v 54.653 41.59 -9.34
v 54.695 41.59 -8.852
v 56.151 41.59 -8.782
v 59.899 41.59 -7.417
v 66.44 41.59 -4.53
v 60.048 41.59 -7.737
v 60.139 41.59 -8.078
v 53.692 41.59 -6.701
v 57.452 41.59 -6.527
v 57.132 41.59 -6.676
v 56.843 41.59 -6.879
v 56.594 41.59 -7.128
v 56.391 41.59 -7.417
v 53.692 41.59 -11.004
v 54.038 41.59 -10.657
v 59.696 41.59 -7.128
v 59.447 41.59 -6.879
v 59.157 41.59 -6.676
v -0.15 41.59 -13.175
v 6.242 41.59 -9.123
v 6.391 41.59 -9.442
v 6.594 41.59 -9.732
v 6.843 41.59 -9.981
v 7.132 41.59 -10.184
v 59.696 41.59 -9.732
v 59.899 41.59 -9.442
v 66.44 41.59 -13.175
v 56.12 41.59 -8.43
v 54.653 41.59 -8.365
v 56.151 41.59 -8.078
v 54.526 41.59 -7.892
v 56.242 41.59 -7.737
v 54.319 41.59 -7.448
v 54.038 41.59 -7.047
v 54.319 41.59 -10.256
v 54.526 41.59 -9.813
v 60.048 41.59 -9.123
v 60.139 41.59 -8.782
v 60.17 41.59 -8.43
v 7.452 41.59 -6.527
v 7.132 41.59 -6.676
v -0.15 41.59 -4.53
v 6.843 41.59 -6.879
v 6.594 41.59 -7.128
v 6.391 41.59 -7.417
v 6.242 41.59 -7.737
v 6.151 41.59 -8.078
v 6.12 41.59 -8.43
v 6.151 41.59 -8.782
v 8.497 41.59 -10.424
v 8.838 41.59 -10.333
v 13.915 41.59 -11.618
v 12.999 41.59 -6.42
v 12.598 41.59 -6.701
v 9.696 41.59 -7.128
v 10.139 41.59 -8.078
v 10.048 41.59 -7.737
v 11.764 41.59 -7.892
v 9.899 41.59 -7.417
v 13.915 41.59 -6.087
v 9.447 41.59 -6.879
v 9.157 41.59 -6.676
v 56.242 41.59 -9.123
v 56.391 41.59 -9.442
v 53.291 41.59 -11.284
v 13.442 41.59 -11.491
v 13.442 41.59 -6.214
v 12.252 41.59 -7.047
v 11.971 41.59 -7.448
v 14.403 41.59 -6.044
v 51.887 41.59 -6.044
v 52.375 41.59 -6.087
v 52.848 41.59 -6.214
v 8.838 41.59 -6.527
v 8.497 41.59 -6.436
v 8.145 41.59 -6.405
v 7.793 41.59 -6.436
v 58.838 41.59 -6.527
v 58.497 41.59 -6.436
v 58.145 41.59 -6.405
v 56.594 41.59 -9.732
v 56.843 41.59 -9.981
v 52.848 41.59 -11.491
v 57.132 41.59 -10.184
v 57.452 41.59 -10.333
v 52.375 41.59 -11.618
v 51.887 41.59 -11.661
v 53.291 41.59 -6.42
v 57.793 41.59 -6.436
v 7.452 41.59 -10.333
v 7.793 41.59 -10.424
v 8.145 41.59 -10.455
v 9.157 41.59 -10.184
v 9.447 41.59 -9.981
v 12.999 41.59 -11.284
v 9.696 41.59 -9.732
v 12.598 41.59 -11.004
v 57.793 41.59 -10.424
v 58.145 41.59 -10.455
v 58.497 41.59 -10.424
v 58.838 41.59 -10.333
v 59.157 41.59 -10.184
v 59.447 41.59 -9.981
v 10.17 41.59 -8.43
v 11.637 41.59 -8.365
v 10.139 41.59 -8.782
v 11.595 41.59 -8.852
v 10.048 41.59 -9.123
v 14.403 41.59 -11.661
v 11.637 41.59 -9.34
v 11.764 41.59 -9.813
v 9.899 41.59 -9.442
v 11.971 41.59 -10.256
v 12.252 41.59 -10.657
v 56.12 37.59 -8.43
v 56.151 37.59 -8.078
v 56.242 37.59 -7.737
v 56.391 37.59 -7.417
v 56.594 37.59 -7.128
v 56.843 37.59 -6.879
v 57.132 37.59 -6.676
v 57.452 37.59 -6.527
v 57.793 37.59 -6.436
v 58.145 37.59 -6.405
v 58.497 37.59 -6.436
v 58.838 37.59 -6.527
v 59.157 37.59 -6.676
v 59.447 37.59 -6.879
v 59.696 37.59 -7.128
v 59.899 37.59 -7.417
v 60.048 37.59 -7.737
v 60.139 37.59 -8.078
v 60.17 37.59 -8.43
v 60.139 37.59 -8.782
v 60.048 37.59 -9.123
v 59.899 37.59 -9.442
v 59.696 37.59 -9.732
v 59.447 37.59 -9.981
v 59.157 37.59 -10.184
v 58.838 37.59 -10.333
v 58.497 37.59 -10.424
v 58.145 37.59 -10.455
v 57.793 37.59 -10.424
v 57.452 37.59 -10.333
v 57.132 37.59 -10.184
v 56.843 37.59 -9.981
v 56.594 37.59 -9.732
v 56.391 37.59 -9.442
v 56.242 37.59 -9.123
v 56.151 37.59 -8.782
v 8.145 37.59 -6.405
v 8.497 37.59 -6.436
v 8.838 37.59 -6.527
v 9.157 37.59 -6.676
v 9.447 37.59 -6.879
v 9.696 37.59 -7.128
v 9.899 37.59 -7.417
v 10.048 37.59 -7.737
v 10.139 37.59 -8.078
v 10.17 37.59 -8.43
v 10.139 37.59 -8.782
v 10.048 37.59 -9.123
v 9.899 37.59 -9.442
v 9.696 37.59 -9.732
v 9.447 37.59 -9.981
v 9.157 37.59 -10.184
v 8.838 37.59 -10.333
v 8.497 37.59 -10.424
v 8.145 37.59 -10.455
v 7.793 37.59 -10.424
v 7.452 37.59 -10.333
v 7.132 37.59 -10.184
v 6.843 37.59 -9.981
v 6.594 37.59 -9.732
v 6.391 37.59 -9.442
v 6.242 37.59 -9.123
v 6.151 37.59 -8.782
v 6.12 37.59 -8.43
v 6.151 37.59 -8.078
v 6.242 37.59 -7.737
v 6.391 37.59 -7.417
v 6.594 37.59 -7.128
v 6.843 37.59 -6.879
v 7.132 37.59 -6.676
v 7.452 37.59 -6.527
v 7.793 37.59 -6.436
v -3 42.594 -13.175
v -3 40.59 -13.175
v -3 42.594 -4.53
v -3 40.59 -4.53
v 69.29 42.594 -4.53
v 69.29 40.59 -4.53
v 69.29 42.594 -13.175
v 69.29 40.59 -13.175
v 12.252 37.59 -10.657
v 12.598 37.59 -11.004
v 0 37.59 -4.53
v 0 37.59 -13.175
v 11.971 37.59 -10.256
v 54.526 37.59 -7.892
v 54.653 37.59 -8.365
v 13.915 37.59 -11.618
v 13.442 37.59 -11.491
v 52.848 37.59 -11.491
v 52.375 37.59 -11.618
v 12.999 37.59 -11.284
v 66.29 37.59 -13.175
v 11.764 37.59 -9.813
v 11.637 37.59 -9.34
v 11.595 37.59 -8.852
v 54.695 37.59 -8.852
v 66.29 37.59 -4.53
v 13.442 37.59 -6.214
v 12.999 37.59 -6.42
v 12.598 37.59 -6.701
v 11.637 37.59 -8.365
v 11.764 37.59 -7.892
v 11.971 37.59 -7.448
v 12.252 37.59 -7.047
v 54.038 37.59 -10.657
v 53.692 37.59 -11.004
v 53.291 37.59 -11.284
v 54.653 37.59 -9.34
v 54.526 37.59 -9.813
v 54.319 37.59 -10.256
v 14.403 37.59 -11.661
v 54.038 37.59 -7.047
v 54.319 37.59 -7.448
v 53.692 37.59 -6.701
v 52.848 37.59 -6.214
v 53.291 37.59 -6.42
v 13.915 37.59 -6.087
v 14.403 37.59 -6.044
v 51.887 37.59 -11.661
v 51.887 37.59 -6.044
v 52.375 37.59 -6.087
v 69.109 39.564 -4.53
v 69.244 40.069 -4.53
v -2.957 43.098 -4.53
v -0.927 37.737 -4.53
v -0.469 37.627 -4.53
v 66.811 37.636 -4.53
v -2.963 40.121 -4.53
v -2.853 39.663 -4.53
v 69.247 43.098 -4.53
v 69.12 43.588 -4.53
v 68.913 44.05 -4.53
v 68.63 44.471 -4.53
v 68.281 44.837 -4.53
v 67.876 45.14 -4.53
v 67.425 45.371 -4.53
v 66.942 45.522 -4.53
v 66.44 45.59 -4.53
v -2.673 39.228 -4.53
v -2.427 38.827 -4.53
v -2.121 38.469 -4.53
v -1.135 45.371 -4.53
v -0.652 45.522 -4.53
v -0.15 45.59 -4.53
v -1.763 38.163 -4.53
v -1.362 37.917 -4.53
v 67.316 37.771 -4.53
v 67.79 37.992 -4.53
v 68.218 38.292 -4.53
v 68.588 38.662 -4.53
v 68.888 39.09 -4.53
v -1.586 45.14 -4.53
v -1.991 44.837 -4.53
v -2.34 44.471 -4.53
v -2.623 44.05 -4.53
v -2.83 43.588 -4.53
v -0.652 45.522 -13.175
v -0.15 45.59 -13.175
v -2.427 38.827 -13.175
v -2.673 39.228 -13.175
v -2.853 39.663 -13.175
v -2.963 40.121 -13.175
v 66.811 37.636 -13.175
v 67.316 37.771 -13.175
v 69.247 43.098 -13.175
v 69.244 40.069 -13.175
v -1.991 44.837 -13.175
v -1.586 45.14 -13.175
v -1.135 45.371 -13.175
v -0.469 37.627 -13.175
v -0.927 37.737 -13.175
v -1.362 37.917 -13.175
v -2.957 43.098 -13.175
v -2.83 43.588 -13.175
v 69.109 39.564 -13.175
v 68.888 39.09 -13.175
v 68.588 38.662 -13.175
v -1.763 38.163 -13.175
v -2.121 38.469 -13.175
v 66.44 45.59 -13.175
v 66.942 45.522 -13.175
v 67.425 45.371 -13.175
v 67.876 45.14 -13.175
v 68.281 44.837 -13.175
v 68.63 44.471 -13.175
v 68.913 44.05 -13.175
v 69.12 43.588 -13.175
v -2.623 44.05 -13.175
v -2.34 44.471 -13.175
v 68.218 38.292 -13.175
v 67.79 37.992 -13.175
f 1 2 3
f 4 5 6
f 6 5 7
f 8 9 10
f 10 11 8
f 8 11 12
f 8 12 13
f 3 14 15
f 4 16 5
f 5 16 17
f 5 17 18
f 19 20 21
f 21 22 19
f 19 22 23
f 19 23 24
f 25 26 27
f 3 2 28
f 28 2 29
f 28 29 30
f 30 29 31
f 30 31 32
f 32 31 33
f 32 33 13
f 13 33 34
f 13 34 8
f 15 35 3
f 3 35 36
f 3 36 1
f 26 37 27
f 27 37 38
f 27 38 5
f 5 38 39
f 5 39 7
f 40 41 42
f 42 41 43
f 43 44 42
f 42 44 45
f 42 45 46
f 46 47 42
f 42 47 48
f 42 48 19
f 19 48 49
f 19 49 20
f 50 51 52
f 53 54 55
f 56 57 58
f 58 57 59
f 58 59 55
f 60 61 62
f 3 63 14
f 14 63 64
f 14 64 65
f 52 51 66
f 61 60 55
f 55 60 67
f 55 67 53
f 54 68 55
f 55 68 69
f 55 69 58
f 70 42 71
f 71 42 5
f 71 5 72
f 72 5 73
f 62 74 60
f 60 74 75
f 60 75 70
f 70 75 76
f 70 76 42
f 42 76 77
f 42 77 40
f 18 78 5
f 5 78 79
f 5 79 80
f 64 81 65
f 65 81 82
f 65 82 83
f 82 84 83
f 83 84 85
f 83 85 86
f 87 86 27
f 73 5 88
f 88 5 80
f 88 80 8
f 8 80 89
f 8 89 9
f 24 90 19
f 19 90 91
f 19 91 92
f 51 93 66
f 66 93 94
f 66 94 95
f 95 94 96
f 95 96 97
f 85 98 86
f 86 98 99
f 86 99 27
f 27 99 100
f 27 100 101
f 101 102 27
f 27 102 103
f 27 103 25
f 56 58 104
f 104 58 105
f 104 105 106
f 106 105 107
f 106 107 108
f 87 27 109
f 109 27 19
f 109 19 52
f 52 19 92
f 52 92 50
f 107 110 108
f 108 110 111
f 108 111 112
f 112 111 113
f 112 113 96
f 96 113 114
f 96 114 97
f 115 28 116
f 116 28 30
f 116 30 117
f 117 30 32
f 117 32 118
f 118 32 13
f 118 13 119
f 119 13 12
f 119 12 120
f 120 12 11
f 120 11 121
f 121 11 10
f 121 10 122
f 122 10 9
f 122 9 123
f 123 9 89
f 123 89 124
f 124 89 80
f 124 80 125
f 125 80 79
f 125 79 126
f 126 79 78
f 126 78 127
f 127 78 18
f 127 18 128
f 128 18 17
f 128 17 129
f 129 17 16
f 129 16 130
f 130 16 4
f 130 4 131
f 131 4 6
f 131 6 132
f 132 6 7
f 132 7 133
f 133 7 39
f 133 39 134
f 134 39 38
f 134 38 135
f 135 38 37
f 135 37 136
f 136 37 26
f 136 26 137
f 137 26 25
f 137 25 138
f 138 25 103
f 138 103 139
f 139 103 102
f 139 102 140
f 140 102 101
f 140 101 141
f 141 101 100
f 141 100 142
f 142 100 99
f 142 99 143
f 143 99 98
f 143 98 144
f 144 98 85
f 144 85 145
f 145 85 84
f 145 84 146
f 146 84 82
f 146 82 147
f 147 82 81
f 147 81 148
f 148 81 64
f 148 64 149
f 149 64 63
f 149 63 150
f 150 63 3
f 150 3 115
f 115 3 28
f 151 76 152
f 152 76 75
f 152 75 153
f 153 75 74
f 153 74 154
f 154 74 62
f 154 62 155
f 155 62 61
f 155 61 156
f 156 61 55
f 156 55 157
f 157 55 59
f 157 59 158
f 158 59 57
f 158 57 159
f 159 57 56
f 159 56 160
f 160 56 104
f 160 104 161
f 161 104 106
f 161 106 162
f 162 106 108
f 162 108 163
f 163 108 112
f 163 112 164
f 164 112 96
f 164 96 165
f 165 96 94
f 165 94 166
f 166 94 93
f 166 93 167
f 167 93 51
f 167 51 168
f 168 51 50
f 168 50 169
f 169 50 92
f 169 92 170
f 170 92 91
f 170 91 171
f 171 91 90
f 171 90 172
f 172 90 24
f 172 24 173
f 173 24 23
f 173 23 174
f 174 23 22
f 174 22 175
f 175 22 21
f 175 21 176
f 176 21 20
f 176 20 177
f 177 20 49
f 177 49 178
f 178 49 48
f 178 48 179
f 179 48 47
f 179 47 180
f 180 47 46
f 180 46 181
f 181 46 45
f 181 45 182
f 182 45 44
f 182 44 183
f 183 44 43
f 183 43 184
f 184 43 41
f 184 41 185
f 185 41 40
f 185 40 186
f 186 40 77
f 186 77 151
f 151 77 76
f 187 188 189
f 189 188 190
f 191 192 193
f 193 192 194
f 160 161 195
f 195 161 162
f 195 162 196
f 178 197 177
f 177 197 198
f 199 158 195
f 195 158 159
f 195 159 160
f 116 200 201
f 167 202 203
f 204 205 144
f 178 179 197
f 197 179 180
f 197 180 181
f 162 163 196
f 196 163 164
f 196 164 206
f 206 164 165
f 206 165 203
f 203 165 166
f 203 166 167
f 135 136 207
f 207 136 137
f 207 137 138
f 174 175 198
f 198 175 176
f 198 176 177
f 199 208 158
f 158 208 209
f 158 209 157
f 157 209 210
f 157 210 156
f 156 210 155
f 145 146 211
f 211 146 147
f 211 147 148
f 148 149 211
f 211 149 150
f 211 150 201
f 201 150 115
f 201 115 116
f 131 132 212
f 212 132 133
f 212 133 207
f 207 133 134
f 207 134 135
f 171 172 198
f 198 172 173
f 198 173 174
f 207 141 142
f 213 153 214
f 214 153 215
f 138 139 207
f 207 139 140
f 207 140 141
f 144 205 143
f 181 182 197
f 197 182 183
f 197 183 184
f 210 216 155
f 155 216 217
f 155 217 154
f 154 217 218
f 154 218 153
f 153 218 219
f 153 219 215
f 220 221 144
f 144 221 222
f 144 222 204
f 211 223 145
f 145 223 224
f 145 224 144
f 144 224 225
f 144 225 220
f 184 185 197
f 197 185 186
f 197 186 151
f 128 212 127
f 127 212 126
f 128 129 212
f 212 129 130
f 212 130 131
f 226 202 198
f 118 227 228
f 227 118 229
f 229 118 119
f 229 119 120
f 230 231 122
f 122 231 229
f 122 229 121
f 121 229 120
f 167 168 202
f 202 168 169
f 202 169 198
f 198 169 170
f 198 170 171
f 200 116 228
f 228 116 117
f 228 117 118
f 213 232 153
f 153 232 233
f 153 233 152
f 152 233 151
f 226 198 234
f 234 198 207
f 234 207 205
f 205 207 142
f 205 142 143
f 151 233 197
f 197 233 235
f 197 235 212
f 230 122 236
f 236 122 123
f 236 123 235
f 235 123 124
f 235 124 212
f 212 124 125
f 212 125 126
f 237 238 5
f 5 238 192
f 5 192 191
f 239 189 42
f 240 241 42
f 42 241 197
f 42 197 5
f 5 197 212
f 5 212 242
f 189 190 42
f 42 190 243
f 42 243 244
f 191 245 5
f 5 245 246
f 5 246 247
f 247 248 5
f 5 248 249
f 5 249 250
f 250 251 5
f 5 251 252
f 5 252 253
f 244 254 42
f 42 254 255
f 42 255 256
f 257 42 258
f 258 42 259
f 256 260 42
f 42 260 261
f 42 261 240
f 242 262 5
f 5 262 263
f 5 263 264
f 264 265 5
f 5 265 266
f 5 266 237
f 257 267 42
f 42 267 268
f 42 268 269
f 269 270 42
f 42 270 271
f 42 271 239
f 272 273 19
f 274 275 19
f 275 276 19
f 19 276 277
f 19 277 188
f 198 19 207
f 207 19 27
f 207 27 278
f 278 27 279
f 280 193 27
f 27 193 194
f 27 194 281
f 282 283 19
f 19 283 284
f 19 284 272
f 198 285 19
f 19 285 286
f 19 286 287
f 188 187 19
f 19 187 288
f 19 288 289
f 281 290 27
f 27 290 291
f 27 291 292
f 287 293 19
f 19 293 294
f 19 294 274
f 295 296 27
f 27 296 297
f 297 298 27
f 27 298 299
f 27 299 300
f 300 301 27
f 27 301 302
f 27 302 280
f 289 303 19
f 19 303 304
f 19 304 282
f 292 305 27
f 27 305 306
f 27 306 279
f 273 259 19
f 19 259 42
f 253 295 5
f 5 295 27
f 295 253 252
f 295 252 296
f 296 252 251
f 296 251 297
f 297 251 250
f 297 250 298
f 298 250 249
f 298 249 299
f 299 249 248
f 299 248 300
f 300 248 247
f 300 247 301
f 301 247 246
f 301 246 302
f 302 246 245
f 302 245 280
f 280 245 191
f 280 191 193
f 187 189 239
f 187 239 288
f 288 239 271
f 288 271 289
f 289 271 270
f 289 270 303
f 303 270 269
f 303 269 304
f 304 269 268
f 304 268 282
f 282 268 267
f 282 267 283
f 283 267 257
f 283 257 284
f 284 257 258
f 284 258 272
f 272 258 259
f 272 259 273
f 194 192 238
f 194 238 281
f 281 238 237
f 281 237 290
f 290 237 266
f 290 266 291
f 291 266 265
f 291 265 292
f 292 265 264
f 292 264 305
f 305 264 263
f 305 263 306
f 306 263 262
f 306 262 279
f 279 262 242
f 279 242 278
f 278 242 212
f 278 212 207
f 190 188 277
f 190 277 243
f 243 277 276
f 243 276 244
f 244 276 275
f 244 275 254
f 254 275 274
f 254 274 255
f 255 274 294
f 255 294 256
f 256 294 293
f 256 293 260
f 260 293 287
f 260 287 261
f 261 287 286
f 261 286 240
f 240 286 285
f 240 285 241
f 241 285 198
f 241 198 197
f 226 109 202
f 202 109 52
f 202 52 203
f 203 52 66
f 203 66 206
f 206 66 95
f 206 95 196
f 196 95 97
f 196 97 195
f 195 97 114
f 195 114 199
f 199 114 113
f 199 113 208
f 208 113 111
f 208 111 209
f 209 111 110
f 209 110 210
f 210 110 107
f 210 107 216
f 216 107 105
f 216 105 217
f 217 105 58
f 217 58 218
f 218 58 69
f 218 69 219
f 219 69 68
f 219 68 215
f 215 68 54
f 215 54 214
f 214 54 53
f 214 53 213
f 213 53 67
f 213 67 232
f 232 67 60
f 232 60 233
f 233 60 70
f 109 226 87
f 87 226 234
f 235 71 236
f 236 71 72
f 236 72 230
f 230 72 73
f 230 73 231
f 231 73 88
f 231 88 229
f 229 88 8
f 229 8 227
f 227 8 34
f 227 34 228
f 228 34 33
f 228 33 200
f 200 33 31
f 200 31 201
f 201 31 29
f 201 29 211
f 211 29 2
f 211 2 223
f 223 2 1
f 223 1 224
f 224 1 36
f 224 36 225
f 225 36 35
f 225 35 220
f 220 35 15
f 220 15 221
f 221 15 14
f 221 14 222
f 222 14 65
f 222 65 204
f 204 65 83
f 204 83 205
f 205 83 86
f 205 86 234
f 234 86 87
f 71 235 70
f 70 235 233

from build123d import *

# Parameters (mm, degrees)
SKETCH1_W                 = 66.29
SKETCH1_H                 = 100
BOSS_EXTRUDE1_DEPTH       = 41.59
SHELL2_T                  = -3
SHELL2_THICKNESS_2_FACE_W = 60.29
SHELL2_THICKNESS_2_FACE_H = 38.59
SHELL2_THICKNESS_2_DEPTH  = 1
SHELL2_THICKNESS_3_FACE_W = 60.29
SHELL2_THICKNESS_3_FACE_H = 38.59
SHELL2_THICKNESS_3_DEPTH  = 1
CUT_EXTRUDE1_DEPTH        = 125.59
FILLET1_R                 = 2
CUT_EXTRUDE2_REACH        = 128.981
SKETCH5_R                 = 5
SKETCH5_R_2               = 2.32
CUT_EXTRUDE3_START        = -3
SKETCH6_R                 = 23.17
CUT_EXTRUDE3_DEPTH        = 60.29
SKETCH7_R                 = 3.7
CUT_EXTRUDE4_DEPTH        = 1
BOSS_EXTRUDE2_DEPTH       = 10
SKETCH9_R                 = 1.5
CUT_EXTRUDE5_DEPTH        = 13
CUT_EXTRUDE6_START        = -6
SKETCH10_R                = 1.5
CUT_EXTRUDE6_DEPTH        = 6
CHAMFER1_SIZE             = 1
BOSS_EXTRUDE3_DEPTH       = 7
CHAMFER2_SIZE             = 1
SKETCH12_R                = 2.025
BOSS_EXTRUDE4_DEPTH       = 4
CHAMFER1_OF_MIRROR1_SIZE  = 1
CHAMFER2_OF_MIRROR1_SIZE  = 1
CUT_EXTRUDE7_REACH        = 130.572
SKETCH16_W                = 3
SKETCH16_H                = 0.2
CUT_EXTRUDE8_DEPTH        = 4.2
SKETCH17_W                = 9.044697424
SKETCH17_H                = 0.2
CUT_EXTRUDE9_DEPTH        = 66.29
SKETCH18_W                = 2.85
SKETCH18_H                = 8.644697424
BOSS_EXTRUDE5_DEPTH       = 4
FILLET2_R                 = 3
CUT_EXTRUDE10_DEPTH       = 10


with BuildPart() as part:
    # Sketch1 → Boss-Extrude1 (new body)
    with BuildSketch(Plane(origin=(0, 0, 0), x_dir=(1, 0, 0), z_dir=(0, 1, 0))):
        with Locations((33.145, 50)):
            Rectangle(SKETCH1_W, SKETCH1_H)
    extrude(amount=BOSS_EXTRUDE1_DEPTH)

    # Shell2
    shell2_openings = [part.faces().sort_by_distance(p)[0] for p in [
        (33.145, 41.59, -50),
    ]]
    offset(amount=SHELL2_T, openings=shell2_openings, kind=Kind.INTERSECTION)

    # Shell2 thickness 2 face (on inner face of the shell) → Shell2 thickness 2 (cut)
    with BuildSketch(Plane(origin=(33.145, 22.295, -3), x_dir=(1, 0, 0), z_dir=(0, 0, 1))):
        Rectangle(SHELL2_THICKNESS_2_FACE_W, SHELL2_THICKNESS_2_FACE_H)
    extrude(amount=SHELL2_THICKNESS_2_DEPTH, mode=Mode.SUBTRACT)

    # Shell2 thickness 3 face (on inner face of the shell) → Shell2 thickness 3 (cut)
    with BuildSketch(Plane(origin=(33.145, 22.295, -97), x_dir=(-1, 0, 0), z_dir=(0, 0, -1))):
        Rectangle(SHELL2_THICKNESS_3_FACE_W, SHELL2_THICKNESS_3_FACE_H)
    extrude(amount=SHELL2_THICKNESS_3_DEPTH, mode=Mode.SUBTRACT)

    # Sketch3 → Cut-Extrude1 (cut)
    with BuildSketch(Plane.XY):
        Polygon((54.395, 15), (11.895, 15), (11.895, 31.32), (8.815, 31.32), (8.815, 33.97), (7.755, 35.32), (7.145, 35.32), (7.145, 41.59), (59.145, 41.59), (57.145, 35.32), (56.535, 35.32), (55.475, 33.97), (55.475, 31.32), (52.395, 31.32), align=None)
    extrude(amount=-CUT_EXTRUDE1_DEPTH, mode=Mode.SUBTRACT)

    # Fillet1
    fillet1_edges = [part.edges().sort_by_distance(p)[0] for p in [
        (33.145, 0, -100),
        (66.29, 0, -50),
        (33.145, 0, 0),
        (0, 0, -50),
        (0, 20.795, -100),
        (66.29, 20.795, -100),
        (66.29, 20.795, 0),
        (0, 20.795, 0),
    ]]
    fillet(fillet1_edges, radius=FILLET1_R)

    # Cut-Extrude2: up to this face of the body (flat: up to its plane)
    cut_extrude2_end = Plane(part.part.faces().sort_by_distance((66.29, 21.795, -50))[0])
    # Sketch5 → Cut-Extrude2 (cut, up to the picked face)
    with BuildSketch(Plane.ZY, mode=Mode.PRIVATE) as cut_extrude2_sk1:
        with Locations((-72.87, 8)):
            Circle(SKETCH5_R)
    cut_extrude2_tool1 = split(extrude(cut_extrude2_sk1.sketch, amount=-CUT_EXTRUDE2_REACH, mode=Mode.PRIVATE), bisect_by=cut_extrude2_end, keep=Keep.BOTH, mode=Mode.PRIVATE)
    # Sketch5 → Cut-Extrude2 (cut, up to the picked face)
    with BuildSketch(Plane.ZY, mode=Mode.PRIVATE) as cut_extrude2_sk2:
        with Locations((-90.37, 15.93)):
            Circle(SKETCH5_R_2)
    cut_extrude2_tool2 = split(extrude(cut_extrude2_sk2.sketch, amount=-CUT_EXTRUDE2_REACH, mode=Mode.PRIVATE), bisect_by=cut_extrude2_end, keep=Keep.BOTH, mode=Mode.PRIVATE)
    # Sketch5 → Cut-Extrude2 (cut, up to the picked face)
    with BuildSketch(Plane.ZY, mode=Mode.PRIVATE) as cut_extrude2_sk3:
        with Locations((-55.37, 15.93)):
            Circle(SKETCH5_R_2)
    cut_extrude2_tool3 = split(extrude(cut_extrude2_sk3.sketch, amount=-CUT_EXTRUDE2_REACH, mode=Mode.PRIVATE), bisect_by=cut_extrude2_end, keep=Keep.BOTH, mode=Mode.PRIVATE)
    add(cut_extrude2_tool1.solids().sort_by(Axis((0, 8, -72.87), (1, 0, 0)))[0], mode=Mode.SUBTRACT)
    add(cut_extrude2_tool2.solids().sort_by(Axis((0, 15.93, -90.37), (1, 0, 0)))[0], mode=Mode.SUBTRACT)
    add(cut_extrude2_tool3.solids().sort_by(Axis((0, 15.93, -55.37), (1, 0, 0)))[0], mode=Mode.SUBTRACT)

    # Sketch6 → Cut-Extrude3 (cut)
    with BuildSketch(Plane.ZY.offset(CUT_EXTRUDE3_START)):
        with Locations((-72.87, 25.24)):
            Circle(SKETCH6_R)
    extrude(amount=-CUT_EXTRUDE3_DEPTH, mode=Mode.SUBTRACT)

    # Sketch7 → Cut-Extrude4 (cut)
    with BuildSketch(Plane.ZY):
        with Locations((-55.37, 15.93)):
            Circle(SKETCH7_R)
        with Locations((-90.37, 15.93)):
            Circle(SKETCH7_R)
    cut_extrude4 = extrude(amount=-CUT_EXTRUDE4_DEPTH, mode=Mode.SUBTRACT)

    # Sketch8 → Boss-Extrude2 (add)
    with BuildSketch(Plane(origin=(0, 3, 0), x_dir=(1, 0, 0), z_dir=(0, 1, 0))):
        Polygon((3, 18.5), (3, 2), (13, 2), (13, 18.5), (15.79, 18.5), (15.79, 21.25), (8, 21.25), (8, 18.5), align=None)
    boss_extrude2 = extrude(amount=BOSS_EXTRUDE2_DEPTH)

    # Sketch9 → Cut-Extrude5 (cut)
    with BuildSketch(Plane.ZY):
        with Locations((-8.24, 8)):
            Circle(SKETCH9_R)
    cut_extrude5 = extrude(amount=-CUT_EXTRUDE5_DEPTH, mode=Mode.SUBTRACT)

    # Sketch10 → Cut-Extrude6 (cut)
    # profile 1 of 2: a face of its own
    with BuildSketch(Plane(origin=(13, 0, 0), x_dir=(0, 0, -1), z_dir=(1, 0, 0)).offset(CUT_EXTRUDE6_START)):
        Polygon((6.74, 5.401923789), (9.74, 5.401923789), (11.24, 8), (9.74, 10.598076211), (6.74, 10.598076211), (5.24, 8), align=None)
        with Locations(Location((8.24, 8, 0), (0, 0, 180))):
            Circle(SKETCH10_R, mode=Mode.SUBTRACT)
    # profile 2 of 2: a face of its own
    with BuildSketch(Plane(origin=(13, 0, 0), x_dir=(0, 0, -1), z_dir=(1, 0, 0)).offset(CUT_EXTRUDE6_START)):
        with Locations(Location((8.24, 8, 0), (0, 0, 180))):
            Circle(SKETCH10_R)
    cut_extrude6 = extrude(amount=CUT_EXTRUDE6_DEPTH, mode=Mode.SUBTRACT)

    # Chamfer1
    chamfer1_edges = [part.edges().sort_by_distance(p)[0] for p in [
        (3, 8, -18.5),
        (13, 13, -10.25),
        (13, 8, -2),
        (14.395, 13, -18.5),
        (15.79, 13, -19.875),
        (8, 13, -19.875),
        (5.5, 13, -18.5),
        (3, 13, -10.25),
        (8, 13, -2),
        (11.895, 13, -21.25),
    ]]
    chamfer(chamfer1_edges, length=CHAMFER1_SIZE)

    # Sketch11 → Boss-Extrude3 (add)
    with BuildSketch(Plane(origin=(0, 3, 0), x_dir=(1, 0, 0), z_dir=(0, 1, 0))):
        Polygon((8, 52.25), (20.582035751, 52.25), (20.582035751, 55.357324548), (3, 55.357324548), (3, 52.25), align=None)
    boss_extrude3 = extrude(amount=BOSS_EXTRUDE3_DEPTH)

    # Chamfer2
    chamfer2_edges = [part.edges().sort_by_distance(p)[0] for p in [
        (20.582035751, 10, -53.803662274),
        (11.791017876, 10, -55.357324548),
        (11.791017876, 10, -52.25),
    ]]
    chamfer(chamfer2_edges, length=CHAMFER2_SIZE)

    # Sketch12 → Boss-Extrude4 (add)
    # profile 1 of 2: a face of its own
    with BuildSketch(Plane(origin=(0, 41.59, 0), x_dir=(1, 0, 0), z_dir=(0, 1, 0))):
        Polygon((8.145, 13.174697424), (33.145, 13.174697424), (33.145, 4.53), (8.145, 4.53), (-3, 4.53), (-3, 13.174697424), align=None)
        with Locations(Location((8.145, 8.43, 0), (0, 0, 270))):
            Circle(SKETCH12_R, mode=Mode.SUBTRACT)
    # profile 2 of 2: a face of its own
    with BuildSketch(Plane(origin=(0, 41.59, 0), x_dir=(1, 0, 0), z_dir=(0, 1, 0))):
        Polygon((8.145, 58.685302576), (-3, 58.685302576), (-3, 67.33), (8.145, 67.33), (33.145, 67.33), (33.145, 58.685302576), align=None)
        with Locations(Location((8.145, 63.43, 0), (0, 0, 270))):
            Circle(SKETCH12_R, mode=Mode.SUBTRACT)
    boss_extrude4 = extrude(amount=-BOSS_EXTRUDE4_DEPTH)

    # Mirror1: Cut-Extrude4, Boss-Extrude2, Cut-Extrude5, Cut-Extrude6, Boss-Extrude3, Boss-Extrude4 across plane
    add(cut_extrude4.mirror(Plane.ZY.offset(-33.145)), mode=Mode.SUBTRACT)
    add(boss_extrude2.mirror(Plane.ZY.offset(-33.145)))
    add(cut_extrude5.mirror(Plane.ZY.offset(-33.145)), mode=Mode.SUBTRACT)
    add(cut_extrude6.mirror(Plane.ZY.offset(-33.145)), mode=Mode.SUBTRACT)
    add(boss_extrude3.mirror(Plane.ZY.offset(-33.145)))
    add(boss_extrude4.mirror(Plane.ZY.offset(-33.145)))

    # Chamfer1 of Mirror1
    chamfer1_of_mirror1_edges = [part.edges().sort_by_distance(p)[0] for p in [
        (63.29, 8, -18.5),
        (53.29, 13, -10.25),
        (53.29, 8, -2),
        (51.895, 13, -18.5),
        (50.5, 13, -19.875),
        (58.29, 13, -19.875),
        (60.79, 13, -18.5),
        (63.29, 13, -10.25),
        (58.29, 13, -2),
        (54.395, 13, -21.25),
    ]]
    chamfer(chamfer1_of_mirror1_edges, length=CHAMFER1_OF_MIRROR1_SIZE)

    # Chamfer2 of Mirror1
    chamfer2_of_mirror1_edges = [part.edges().sort_by_distance(p)[0] for p in [
        (45.707964249, 10, -53.803662274),
        (54.498982124, 10, -55.357324548),
        (54.498982124, 10, -52.25),
    ]]
    chamfer(chamfer2_of_mirror1_edges, length=CHAMFER2_OF_MIRROR1_SIZE)

    # Cut-Extrude7: up to this face of the body (flat: up to its plane)
    cut_extrude7_end = Plane(part.part.faces().sort_by_distance((0, 21.922757181, -49.29907897))[0])
    # Sketch13 → Cut-Extrude7 (cut, up to the picked face)
    with BuildSketch(Plane(origin=(66.29, 0, 0), x_dir=(0, 0, -1), z_dir=(1, 0, 0)), mode=Mode.PRIVATE) as cut_extrude7_sk1:
        Polygon((15.839041752, 41.371414907), (26.360630861, 23.584658178), (47.025208595, 23.803243271), (57.168197218, 41.808585093), (46.646608109, 59.595341822), (25.982030375, 59.376756729), align=None)
    cut_extrude7_tool1 = split(extrude(cut_extrude7_sk1.sketch, amount=-CUT_EXTRUDE7_REACH, mode=Mode.PRIVATE), bisect_by=cut_extrude7_end, keep=Keep.BOTH, mode=Mode.PRIVATE)
    # Sketch13 → Cut-Extrude7 (cut, up to the picked face)
    with BuildSketch(Plane(origin=(66.29, 0, 0), x_dir=(0, 0, -1), z_dir=(1, 0, 0)), mode=Mode.PRIVATE) as cut_extrude7_sk2:
        Polygon((73.241690704, 41.59), (78.598611092, 32.311541717), (89.312451867, 32.311541717), (94.669372255, 41.59), (89.312451867, 50.868458283), (78.598611092, 50.868458283), align=None)
    cut_extrude7_tool2 = split(extrude(cut_extrude7_sk2.sketch, amount=-CUT_EXTRUDE7_REACH, mode=Mode.PRIVATE), bisect_by=cut_extrude7_end, keep=Keep.BOTH, mode=Mode.PRIVATE)
    add(cut_extrude7_tool1.solids().sort_by(Axis((66.29, 41.59, -36.503619), (-1, 0, 0)))[0], mode=Mode.SUBTRACT)
    add(cut_extrude7_tool2.solids().sort_by(Axis((66.29, 41.59, -83.955531), (-1, 0, 0)))[0], mode=Mode.SUBTRACT)

    # Sketch16 → Cut-Extrude8 (cut)
    with BuildSketch(Plane(origin=(0, 41.59, 0), x_dir=(1, 0, 0), z_dir=(0, 1, 0))):
        with Locations((1.5, 67.43)):
            Rectangle(SKETCH16_W, SKETCH16_H)
        with Locations((1.5, 58.585302576)):
            Rectangle(SKETCH16_W, SKETCH16_H)
        with Locations((1.5, 4.43)):
            Rectangle(SKETCH16_W, SKETCH16_H)
        with Locations((1.5, 13.274697424)):
            Rectangle(SKETCH16_W, SKETCH16_H)
        with Locations((64.79, 13.274697424)):
            Rectangle(SKETCH16_W, SKETCH16_H)
        with Locations((64.79, 4.43)):
            Rectangle(SKETCH16_W, SKETCH16_H)
        with Locations((64.79, 58.585302576)):
            Rectangle(SKETCH16_W, SKETCH16_H)
        with Locations((64.79, 67.43)):
            Rectangle(SKETCH16_W, SKETCH16_H)
    extrude(amount=-CUT_EXTRUDE8_DEPTH, mode=Mode.SUBTRACT)

    # Sketch17 → Cut-Extrude9 (cut)
    with BuildSketch(Plane.ZY):
        with Locations((-63.007651288, 37.49)):
            Rectangle(SKETCH17_W, SKETCH17_H)
        with Locations((-8.852348712, 37.49)):
            Rectangle(SKETCH17_W, SKETCH17_H)
    extrude(amount=-CUT_EXTRUDE9_DEPTH, mode=Mode.SUBTRACT)


with BuildPart() as cut_extrude9_piece_1:
    # of the separate pieces the step leaves, piece 1, a body of its own (cut_extrude9_pieces)
    add(part.part.solids().sort_by_distance((63.29, 9, -52.25))[0])


with BuildPart() as cut_extrude9_piece_2:
    # of the separate pieces the step leaves, piece 2, a body of its own (cut_extrude9_pieces)
    add(part.part.solids().sort_by_distance((69.29, 37.59, -58.685302576))[0])


with BuildPart() as cut_extrude9_piece_3:
    # of the separate pieces the step leaves, piece 3, a body of its own (cut_extrude9_pieces)
    add(part.part.solids().sort_by_distance((69.29, 37.59, -4.53))[0])

    # Sketch18 → Boss-Extrude5 (add)
    with BuildSketch(Plane(origin=(0, 41.59, 0), x_dir=(1, 0, 0), z_dir=(0, 1, 0))):
        with Locations((-1.575, 8.852348712)):
            Rectangle(SKETCH18_W, SKETCH18_H)
        with Locations((67.865, 8.852348712)):
            Rectangle(SKETCH18_W, SKETCH18_H)
    extrude(amount=BOSS_EXTRUDE5_DEPTH)

    # Fillet2
    # the kernel refuses this fillet: 3 mm, written as the material it takes off along each edge
    with BuildSketch(Plane(origin=(-3, 37.59, 2.97), x_dir=(1, 0, 0), z_dir=(0, 0, -1))) as fillet2_piece_1:
        with BuildLine():
            CenterArc((FILLET2_R, -FILLET2_R), FILLET2_R, 90, 90)
            Line((0, -FILLET2_R), (-FILLET2_R * 0.02, -FILLET2_R))
            Line((-FILLET2_R * 0.02, -FILLET2_R), (-FILLET2_R * 0.02, FILLET2_R * 0.02))
            Line((-FILLET2_R * 0.02, FILLET2_R * 0.02), (FILLET2_R, FILLET2_R * 0.02))
            Line((FILLET2_R, FILLET2_R * 0.02), (FILLET2_R, 0))
        make_face()
    extrude(amount=23.644697424, mode=Mode.SUBTRACT)
    with BuildSketch(Plane(origin=(69.29, 37.59, 2.97), x_dir=(-1, 0, 0), z_dir=(0, 0, -1))) as fillet2_piece_2:
        with BuildLine():
            CenterArc((FILLET2_R, FILLET2_R), FILLET2_R, 180, 90)
            Line((0, FILLET2_R), (-FILLET2_R * 0.02, FILLET2_R))
            Line((-FILLET2_R * 0.02, FILLET2_R), (-FILLET2_R * 0.02, -FILLET2_R * 0.02))
            Line((-FILLET2_R * 0.02, -FILLET2_R * 0.02), (FILLET2_R, -FILLET2_R * 0.02))
            Line((FILLET2_R, -FILLET2_R * 0.02), (FILLET2_R, 0))
        make_face()
    extrude(amount=23.644697424, mode=Mode.SUBTRACT)
    with BuildSketch(Plane(origin=(-3, 45.59, 2.960619133), x_dir=(1, 0, 0), z_dir=(0, 0, -1))) as fillet2_piece_3:
        with BuildLine():
            CenterArc((3, 2.996247653), FILLET2_R, 180, 87.134016017)
            Line((0, 2.996247653), (-0.06, 2.996247653))
            Line((-0.06, 2.996247653), (-0.06, 0))
            Line((-0.06, 0), (0, -0.06))
            ThreePointArc((0, -0.06), (1.425, -0.06), (2.847, -0.059924953))
            Line((2.847, -0.059924953), (2.85, 0))
        make_face()
    extrude(amount=23.62593569, mode=Mode.SUBTRACT)
    with BuildSketch(Plane(origin=(69.29, 45.59, 2.960619133), x_dir=(-1, 0, 0), z_dir=(0, 0, -1))) as fillet2_piece_4:
        with BuildLine():
            CenterArc((3, -2.996247653), FILLET2_R, 92.865983983, 87.134016017)
            Line((0, -2.996247653), (-0.06, -2.996247653))
            Line((-0.06, -2.996247653), (-0.06, 0))
            Line((-0.06, 0), (0, 0.06))
            ThreePointArc((0, 0.06), (1.425, 0.06), (2.847, 0.059924953))
            Line((2.847, 0.059924953), (2.85, 0))
        make_face()
    extrude(amount=23.62593569, mode=Mode.SUBTRACT)

    # Sketch19 → Cut-Extrude10 (cut)
    with BuildSketch(Plane(origin=(0, 41.59, 0), x_dir=(1, 0, 0), z_dir=(0, 1, 0))):
        with BuildLine():
            Line((14.402805243, 11.660524623), (51.887194757, 11.660524623))
            ThreePointArc((51.887194757, 11.660524623), (54.695370668, 8.852348712), (51.887194757, 6.044172801))
            Line((51.887194757, 6.044172801), (14.402805243, 6.044172801))
            ThreePointArc((14.402805243, 6.044172801), (11.594629332, 8.852348712), (14.402805243, 11.660524623))
        make_face()
    extrude(amount=-CUT_EXTRUDE10_DEPTH, mode=Mode.SUBTRACT)


solid = cut_extrude9_piece_3.part
